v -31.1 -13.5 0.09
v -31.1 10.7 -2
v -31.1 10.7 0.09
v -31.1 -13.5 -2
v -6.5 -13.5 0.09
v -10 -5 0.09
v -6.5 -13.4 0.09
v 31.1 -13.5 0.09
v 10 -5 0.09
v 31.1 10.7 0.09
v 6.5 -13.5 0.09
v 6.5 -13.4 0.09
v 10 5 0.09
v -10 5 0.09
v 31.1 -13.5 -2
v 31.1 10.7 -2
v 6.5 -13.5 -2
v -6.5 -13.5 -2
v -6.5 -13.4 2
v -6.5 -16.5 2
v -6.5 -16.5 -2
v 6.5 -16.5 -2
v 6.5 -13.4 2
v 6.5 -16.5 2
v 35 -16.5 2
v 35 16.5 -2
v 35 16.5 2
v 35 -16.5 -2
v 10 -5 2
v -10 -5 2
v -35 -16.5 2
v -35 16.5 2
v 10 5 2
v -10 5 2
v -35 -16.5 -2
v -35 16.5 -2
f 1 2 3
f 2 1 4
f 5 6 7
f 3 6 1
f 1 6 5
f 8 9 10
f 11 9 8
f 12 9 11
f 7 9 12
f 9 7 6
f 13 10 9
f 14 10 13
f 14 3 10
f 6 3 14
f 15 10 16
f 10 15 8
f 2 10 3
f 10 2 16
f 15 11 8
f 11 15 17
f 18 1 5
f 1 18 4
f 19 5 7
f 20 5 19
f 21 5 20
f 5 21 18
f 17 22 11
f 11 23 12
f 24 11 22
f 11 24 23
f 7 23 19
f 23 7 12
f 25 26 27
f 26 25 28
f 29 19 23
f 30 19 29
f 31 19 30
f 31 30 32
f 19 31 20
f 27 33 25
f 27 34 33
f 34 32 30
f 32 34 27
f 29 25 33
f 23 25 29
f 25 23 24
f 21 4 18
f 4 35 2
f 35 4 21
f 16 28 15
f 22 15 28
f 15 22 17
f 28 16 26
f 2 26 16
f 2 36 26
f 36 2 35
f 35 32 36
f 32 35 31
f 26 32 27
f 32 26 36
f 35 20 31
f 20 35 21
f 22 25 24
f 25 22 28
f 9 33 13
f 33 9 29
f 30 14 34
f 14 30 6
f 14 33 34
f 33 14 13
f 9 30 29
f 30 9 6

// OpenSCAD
// 
// Frame to hold display (foam at back of disply to hold in place).
//

glass_z = 2.1;
polariser_z = 0.2;

glass_y = 24.2;
polariser_y = 18;

frame_y = 33.0;
frame_z = (4.0);

module oled()
{
     // Glass
     cube([62.2, glass_y, glass_z], center=true);

     // Polariser
     translate([0, glass_y/2-polariser_y/2-1.0, glass_z/2+polariser_z/2])
     {
	  cube([60, polariser_y, polariser_z], center=true);
     }

     // Flex cable (thickened to cut through frame entirely)
     translate([0, -(glass_y/2)-10+0.1, 0])
     {
	  cube([13, 20, 20], center=true);
     }
}

// 8 from bottom
// centred

module frame()
{
     difference()
     {
	  cube([70, frame_y, frame_z], center=true);

      // recess for display
	  translate([0, -(frame_y/2)+(glass_y/2)+3, -frame_z/2+glass_z/2-0.01])
	  {
	       rotate([0, 180, 0])
	       {
		    oled();
	       }
	  }
      
      // Hole for foam if needed
      cube([20,10, 20], center= true);
      
     }
}

frame();
